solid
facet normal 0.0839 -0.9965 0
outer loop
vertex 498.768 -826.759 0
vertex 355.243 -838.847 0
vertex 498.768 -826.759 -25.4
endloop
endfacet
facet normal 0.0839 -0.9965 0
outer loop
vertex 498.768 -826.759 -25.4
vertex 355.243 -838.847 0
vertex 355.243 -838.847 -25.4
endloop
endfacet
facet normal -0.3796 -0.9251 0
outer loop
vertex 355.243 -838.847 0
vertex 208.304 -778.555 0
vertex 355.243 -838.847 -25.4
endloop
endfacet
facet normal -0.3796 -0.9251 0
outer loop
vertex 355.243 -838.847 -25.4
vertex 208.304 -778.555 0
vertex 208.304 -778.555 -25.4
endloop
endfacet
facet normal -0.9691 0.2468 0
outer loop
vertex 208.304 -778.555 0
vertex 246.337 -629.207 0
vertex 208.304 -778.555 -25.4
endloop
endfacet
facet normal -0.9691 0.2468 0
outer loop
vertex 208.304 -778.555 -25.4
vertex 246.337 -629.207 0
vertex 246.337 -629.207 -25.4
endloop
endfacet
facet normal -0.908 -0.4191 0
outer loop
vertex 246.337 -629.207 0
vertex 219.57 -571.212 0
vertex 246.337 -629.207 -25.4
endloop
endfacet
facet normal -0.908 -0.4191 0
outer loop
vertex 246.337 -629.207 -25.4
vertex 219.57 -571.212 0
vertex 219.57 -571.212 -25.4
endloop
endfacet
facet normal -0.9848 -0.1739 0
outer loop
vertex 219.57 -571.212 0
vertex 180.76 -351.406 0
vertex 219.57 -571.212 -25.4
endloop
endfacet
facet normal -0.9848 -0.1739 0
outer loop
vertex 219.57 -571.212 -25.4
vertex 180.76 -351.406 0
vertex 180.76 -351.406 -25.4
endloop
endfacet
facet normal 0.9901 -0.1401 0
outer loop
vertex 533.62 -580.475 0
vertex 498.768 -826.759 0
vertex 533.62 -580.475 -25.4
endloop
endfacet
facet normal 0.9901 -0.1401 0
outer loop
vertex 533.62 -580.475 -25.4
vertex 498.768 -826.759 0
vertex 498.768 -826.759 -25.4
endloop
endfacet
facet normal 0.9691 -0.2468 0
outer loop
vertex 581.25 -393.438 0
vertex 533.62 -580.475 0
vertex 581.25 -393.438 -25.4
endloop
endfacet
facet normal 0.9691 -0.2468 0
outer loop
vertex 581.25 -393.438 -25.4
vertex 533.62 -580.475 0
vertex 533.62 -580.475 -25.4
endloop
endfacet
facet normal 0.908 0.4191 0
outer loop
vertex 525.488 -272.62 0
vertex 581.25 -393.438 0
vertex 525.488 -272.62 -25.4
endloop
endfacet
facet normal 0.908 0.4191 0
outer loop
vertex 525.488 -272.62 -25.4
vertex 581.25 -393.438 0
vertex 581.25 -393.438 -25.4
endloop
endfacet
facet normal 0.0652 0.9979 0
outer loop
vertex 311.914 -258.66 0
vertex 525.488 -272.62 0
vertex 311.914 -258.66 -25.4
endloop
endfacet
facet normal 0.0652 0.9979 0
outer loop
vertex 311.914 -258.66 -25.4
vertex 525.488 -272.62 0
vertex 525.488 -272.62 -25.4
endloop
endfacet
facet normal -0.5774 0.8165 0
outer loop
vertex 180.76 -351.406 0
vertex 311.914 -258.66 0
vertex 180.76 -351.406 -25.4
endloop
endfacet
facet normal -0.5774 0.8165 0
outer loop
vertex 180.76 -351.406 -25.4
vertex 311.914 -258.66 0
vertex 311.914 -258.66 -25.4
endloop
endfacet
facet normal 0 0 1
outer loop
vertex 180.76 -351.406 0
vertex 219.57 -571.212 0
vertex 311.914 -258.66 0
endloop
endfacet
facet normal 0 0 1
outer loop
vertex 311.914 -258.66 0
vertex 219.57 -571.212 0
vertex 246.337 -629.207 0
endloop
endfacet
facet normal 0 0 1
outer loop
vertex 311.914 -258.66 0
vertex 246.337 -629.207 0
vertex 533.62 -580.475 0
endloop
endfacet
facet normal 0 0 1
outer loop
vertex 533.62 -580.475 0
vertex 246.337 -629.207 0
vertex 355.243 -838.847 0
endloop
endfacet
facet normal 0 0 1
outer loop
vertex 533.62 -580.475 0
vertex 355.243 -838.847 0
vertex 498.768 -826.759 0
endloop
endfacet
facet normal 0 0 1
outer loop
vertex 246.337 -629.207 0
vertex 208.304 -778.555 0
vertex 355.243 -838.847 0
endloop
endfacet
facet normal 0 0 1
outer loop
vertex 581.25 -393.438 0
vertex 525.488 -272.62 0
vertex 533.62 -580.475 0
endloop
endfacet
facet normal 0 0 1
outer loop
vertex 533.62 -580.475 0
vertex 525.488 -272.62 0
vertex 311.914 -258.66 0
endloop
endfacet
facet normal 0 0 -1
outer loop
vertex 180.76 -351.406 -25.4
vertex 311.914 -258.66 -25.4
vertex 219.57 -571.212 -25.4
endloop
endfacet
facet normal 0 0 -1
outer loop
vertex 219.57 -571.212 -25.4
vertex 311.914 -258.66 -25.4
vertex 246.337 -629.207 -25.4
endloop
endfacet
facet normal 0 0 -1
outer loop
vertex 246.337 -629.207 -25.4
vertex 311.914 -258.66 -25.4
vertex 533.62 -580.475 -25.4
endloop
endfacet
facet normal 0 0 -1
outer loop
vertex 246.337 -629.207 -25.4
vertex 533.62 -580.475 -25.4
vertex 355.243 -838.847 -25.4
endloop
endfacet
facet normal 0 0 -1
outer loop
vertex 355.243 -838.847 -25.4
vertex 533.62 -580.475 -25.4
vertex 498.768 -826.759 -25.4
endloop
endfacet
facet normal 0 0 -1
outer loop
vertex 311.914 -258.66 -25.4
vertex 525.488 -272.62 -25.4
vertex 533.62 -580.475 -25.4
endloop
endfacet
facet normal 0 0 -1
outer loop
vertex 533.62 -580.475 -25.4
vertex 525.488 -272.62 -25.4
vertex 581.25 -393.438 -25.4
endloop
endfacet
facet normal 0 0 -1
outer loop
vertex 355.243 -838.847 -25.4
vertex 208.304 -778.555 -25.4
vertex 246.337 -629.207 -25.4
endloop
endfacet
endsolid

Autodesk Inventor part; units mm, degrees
ref_plane "YZ Plane" through (0, 0, 0) normal (1, 0, 0) x (0, 1, 0)
ref_plane "XZ Plane" through (0, 0, 0) normal (0, 1, 0) x (-1, 0, 0)
ref_plane "XY Plane" through (0, 0, 0) normal (0, 0, 1) x (1, 0, 0)
sketch "Sketch1" plane through (0, 0, 0) normal (0, 0, 1) x (1, 0, 0)
  line L0 (-15.9123, 14.7509) -> (784.1877, 14.7509) construction
  line L1 (784.1877, 14.7509) -> (784.1877, -1052.0491) construction
  line L2 (784.1877, -1052.0491) -> (-15.9123, -1052.0491) construction
  line L3 (-15.9123, -1052.0491) -> (-15.9123, 14.7509) construction
  line L4 (311.9145, -258.6605) -> (525.4879, -272.6195)
  line L5 (525.4879, -272.6195) -> (581.2504, -393.4383)
  line L6 (581.2504, -393.4383) -> (533.62, -580.4751)
  line L7 (533.62, -580.4751) -> (498.7684, -826.7595)
  line L8 (498.7684, -826.7595) -> (355.243, -838.8475)
  line L9 (355.243, -838.8475) -> (208.3043, -778.5549)
  line L10 (208.3043, -778.5549) -> (246.337, -629.207)
  line L11 (246.337, -629.207) -> (219.57, -571.2118)
  line L12 (219.57, -571.2118) -> (180.7596, -351.4058)
  line L13 (180.7596, -351.4058) -> (311.9145, -258.6605)
  line L14 (180.7596, -258.6605) -> (584.1903, -258.6605)
  line L15 (584.1903, -258.6605) -> (584.1903, -838.8475)
  line L16 (584.1903, -838.8475) -> (180.7596, -838.8475)
  line L17 (180.7596, -838.8475) -> (180.7596, -258.6605)
  point P0 (0, 0)
  dimension "d7" = 403.4308
  dimension "d10" = 580.187
extrude "Extrusion1" add sketch "Sketch1" against normal blind 25.4 contours L4 L5 L6 L7 L8 L9 L10 L11 L12 L13
properties part number "emu"
